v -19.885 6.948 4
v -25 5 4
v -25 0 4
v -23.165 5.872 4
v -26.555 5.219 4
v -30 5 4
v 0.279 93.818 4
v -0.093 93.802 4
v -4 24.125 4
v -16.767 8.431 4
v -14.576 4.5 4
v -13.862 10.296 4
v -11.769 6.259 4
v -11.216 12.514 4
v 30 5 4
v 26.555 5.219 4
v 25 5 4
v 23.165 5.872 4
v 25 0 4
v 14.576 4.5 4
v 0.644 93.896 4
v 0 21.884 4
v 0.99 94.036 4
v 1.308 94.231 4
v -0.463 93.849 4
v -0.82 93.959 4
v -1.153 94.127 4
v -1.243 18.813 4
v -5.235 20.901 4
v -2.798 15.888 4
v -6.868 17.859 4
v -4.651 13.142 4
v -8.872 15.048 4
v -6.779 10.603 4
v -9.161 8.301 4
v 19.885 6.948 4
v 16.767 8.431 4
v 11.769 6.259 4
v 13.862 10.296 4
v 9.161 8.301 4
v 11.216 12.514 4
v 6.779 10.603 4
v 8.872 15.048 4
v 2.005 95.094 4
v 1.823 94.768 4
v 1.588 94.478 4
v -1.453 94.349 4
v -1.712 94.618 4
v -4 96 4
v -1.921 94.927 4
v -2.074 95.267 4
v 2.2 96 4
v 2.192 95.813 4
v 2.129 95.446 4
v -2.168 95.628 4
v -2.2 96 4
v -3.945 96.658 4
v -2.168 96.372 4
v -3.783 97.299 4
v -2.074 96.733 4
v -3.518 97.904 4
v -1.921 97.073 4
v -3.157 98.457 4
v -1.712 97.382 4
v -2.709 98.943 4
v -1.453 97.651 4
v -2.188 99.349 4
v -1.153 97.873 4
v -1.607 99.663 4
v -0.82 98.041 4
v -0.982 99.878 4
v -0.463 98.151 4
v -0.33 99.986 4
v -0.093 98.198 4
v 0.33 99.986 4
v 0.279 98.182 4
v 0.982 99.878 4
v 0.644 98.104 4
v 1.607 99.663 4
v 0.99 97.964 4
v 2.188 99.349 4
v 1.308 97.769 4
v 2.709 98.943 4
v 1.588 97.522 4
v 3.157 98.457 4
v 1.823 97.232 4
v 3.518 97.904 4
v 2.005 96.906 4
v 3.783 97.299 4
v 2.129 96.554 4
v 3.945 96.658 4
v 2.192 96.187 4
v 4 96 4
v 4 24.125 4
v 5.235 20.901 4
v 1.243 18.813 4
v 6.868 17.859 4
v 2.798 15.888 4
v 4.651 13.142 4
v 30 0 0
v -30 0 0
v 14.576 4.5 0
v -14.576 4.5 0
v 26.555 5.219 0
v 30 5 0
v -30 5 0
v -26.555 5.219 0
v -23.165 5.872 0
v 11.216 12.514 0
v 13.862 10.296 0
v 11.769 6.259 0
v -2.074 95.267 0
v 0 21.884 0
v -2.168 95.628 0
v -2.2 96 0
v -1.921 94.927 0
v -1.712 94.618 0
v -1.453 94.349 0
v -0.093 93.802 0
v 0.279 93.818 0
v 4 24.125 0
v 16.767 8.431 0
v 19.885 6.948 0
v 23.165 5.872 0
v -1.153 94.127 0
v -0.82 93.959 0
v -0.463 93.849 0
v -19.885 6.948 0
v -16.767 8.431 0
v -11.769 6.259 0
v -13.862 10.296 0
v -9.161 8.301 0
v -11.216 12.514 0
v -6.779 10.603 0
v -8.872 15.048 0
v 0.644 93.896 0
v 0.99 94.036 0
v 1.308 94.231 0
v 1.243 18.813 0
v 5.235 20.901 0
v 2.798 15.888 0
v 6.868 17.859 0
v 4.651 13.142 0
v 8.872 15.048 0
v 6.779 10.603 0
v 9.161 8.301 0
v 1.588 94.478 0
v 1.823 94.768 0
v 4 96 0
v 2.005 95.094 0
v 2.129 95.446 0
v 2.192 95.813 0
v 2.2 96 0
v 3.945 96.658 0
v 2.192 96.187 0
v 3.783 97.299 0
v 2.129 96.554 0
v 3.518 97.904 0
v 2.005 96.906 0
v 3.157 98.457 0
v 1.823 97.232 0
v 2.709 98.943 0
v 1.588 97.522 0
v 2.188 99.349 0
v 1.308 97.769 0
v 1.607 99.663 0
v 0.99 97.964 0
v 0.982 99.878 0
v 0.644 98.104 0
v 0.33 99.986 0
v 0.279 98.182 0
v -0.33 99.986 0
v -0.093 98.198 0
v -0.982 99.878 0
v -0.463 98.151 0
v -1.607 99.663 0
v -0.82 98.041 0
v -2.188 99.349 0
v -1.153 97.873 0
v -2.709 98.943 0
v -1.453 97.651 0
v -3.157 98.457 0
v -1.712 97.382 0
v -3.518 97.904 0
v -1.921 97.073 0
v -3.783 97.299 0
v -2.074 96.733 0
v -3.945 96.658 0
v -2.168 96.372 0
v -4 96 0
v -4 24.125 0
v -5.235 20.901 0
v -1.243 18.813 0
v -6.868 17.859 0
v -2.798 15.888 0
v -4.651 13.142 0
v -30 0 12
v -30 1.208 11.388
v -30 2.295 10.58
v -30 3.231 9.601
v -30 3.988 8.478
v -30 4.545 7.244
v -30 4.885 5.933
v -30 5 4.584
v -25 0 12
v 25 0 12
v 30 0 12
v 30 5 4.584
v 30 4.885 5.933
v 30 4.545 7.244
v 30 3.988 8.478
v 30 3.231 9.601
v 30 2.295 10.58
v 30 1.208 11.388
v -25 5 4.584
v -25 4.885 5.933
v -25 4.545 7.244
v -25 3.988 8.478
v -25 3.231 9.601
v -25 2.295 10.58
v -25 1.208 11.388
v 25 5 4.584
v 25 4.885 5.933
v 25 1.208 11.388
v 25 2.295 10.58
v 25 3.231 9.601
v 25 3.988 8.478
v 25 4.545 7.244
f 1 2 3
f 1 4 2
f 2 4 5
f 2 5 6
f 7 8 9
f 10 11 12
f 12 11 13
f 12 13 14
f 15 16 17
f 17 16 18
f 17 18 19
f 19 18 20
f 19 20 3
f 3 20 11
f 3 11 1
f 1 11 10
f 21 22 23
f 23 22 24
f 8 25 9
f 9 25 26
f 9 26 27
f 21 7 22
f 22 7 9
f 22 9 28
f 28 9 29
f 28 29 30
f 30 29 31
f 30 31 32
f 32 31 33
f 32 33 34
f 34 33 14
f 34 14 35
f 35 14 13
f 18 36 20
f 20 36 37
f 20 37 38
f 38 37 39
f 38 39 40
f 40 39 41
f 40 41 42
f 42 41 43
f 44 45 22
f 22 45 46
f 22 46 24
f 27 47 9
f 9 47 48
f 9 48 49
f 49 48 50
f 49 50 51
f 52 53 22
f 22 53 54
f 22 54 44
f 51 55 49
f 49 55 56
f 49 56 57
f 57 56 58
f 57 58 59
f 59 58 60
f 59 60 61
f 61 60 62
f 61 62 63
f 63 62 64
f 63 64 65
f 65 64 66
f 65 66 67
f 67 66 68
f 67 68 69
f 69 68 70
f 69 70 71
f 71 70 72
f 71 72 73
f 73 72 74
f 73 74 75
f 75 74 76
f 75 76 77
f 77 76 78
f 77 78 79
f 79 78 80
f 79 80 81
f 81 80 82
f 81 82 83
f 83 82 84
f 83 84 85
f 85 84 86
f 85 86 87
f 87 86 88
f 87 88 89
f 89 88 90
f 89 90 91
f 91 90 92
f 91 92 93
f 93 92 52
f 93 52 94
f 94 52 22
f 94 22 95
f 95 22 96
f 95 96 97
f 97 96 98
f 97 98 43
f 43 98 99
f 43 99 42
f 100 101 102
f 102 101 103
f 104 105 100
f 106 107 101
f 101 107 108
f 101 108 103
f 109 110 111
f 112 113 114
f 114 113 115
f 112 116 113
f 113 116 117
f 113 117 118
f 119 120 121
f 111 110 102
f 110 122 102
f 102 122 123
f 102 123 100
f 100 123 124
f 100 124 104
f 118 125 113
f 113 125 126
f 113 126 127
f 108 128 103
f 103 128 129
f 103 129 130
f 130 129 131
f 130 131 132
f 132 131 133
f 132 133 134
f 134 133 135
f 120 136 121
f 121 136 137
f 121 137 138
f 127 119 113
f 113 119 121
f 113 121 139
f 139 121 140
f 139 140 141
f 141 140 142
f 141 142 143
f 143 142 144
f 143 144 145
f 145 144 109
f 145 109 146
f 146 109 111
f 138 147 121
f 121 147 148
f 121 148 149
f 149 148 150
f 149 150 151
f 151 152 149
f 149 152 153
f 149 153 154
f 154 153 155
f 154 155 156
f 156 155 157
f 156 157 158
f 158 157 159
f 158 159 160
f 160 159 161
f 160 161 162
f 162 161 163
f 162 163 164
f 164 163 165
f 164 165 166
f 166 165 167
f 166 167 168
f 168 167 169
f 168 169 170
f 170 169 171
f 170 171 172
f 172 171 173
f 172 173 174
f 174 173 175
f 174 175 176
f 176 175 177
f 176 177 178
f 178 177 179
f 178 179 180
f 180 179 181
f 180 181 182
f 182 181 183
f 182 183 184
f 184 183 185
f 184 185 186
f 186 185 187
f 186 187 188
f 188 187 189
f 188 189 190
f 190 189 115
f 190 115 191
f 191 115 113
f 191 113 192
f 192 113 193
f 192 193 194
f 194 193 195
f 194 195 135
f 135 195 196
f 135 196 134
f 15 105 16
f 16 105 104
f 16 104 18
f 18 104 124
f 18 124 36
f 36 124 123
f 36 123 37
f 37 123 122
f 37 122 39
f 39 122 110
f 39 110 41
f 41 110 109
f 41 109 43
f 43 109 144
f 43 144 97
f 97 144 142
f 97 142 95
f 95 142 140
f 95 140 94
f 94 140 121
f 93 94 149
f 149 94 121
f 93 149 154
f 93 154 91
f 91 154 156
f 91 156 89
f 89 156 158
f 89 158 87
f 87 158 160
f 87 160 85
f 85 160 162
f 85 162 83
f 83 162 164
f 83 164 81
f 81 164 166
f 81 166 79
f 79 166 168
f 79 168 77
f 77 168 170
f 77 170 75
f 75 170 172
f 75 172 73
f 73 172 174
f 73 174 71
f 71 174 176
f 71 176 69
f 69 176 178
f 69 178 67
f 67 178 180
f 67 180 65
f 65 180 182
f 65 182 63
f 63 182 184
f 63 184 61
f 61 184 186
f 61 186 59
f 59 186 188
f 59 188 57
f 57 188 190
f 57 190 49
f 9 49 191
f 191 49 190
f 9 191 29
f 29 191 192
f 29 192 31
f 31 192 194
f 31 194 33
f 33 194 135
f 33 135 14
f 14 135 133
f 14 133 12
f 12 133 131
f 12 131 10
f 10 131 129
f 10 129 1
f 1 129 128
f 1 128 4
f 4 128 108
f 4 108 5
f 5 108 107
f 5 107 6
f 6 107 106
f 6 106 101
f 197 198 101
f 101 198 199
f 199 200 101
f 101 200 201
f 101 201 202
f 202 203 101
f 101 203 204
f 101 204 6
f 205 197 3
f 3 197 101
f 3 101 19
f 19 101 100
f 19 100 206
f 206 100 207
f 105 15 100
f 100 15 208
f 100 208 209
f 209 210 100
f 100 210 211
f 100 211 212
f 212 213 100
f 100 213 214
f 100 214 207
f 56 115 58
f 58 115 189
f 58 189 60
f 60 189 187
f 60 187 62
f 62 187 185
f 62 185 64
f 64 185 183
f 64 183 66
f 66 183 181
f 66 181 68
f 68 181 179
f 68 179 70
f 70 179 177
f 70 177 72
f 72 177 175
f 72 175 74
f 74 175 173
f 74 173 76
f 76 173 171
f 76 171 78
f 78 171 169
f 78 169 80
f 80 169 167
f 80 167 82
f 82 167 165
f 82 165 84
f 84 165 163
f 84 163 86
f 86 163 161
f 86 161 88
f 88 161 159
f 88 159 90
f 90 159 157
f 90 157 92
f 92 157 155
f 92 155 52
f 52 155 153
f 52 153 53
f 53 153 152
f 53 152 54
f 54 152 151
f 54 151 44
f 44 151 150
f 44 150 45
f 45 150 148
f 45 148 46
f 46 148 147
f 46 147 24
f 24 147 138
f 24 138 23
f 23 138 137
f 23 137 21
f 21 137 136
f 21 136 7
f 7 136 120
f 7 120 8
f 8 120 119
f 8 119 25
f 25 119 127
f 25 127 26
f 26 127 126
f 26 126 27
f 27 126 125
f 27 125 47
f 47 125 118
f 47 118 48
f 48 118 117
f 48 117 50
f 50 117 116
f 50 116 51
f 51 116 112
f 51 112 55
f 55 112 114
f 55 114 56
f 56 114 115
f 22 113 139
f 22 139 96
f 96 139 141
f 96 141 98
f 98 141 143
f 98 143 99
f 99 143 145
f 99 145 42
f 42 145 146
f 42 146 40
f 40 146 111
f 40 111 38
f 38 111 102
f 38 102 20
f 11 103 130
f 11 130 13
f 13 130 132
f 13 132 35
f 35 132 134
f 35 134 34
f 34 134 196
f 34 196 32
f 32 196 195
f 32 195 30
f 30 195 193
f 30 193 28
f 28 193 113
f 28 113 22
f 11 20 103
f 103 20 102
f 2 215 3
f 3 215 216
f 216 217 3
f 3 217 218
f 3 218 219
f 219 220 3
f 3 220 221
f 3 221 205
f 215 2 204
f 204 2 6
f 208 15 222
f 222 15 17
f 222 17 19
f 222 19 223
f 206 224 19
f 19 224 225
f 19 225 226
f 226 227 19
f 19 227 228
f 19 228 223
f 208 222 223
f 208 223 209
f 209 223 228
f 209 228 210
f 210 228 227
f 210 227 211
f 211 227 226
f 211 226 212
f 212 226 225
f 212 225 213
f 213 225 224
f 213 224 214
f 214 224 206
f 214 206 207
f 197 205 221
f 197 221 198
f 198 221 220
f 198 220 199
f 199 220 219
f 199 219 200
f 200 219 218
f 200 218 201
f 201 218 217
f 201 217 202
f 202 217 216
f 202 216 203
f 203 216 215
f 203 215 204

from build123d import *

# Parameters (mm, degrees)
SKETCH1_R           = 2.2
BOSS_EXTRUDE1_DEPTH = 4
SKETCH2_W           = 5
SKETCH2_H           = 5
BOSS_EXTRUDE2_DEPTH = 8
FILLET1_R           = 8


with BuildPart() as part:
    # Sketch1 → Boss-Extrude1 (new body)
    with BuildSketch(Plane.XY):
        with BuildLine():
            Line((-30, 0), (30, 0))
            Line((30, 0), (30, 5))
            ThreePointArc((30, 5), (13.861944355, 10.296039854), (4, 24.124522477))
            Line((4, 24.124522477), (4, 96))
            ThreePointArc((4, 96), (0, 100), (-4, 96))
            Line((-4, 96), (-4, 24.124522477))
            ThreePointArc((-4, 24.124522477), (-13.861944355, 10.296039854), (-30, 5))
            Line((-30, 5), (-30, 0))
        make_face()
        with Locations((0, 96)):
            Circle(SKETCH1_R, mode=Mode.SUBTRACT)
        with BuildLine():
            Line((-14.576406349, 4.5), (14.576406349, 4.5))
            ThreePointArc((14.576406349, 4.5), (5.681813978, 11.844889874), (0, 21.883723005))
            ThreePointArc((0, 21.883723005), (-5.681813978, 11.844889874), (-14.576406349, 4.5))
        make_face(mode=Mode.SUBTRACT)
    extrude(amount=BOSS_EXTRUDE1_DEPTH)

    # Sketch2 → Boss-Extrude2 (add)
    with BuildSketch(Plane.XY.offset(4)):
        with Locations((27.5, 2.5)):
            Rectangle(SKETCH2_W, SKETCH2_H)
        with Locations((-27.5, 2.5)):
            Rectangle(SKETCH2_W, SKETCH2_H)
    extrude(amount=BOSS_EXTRUDE2_DEPTH)

    # Fillet1
    # the kernel refuses this fillet: 8 mm, written as the material it takes off along each edge
    with BuildSketch(Plane(origin=(6.459503782, 5, 12), x_dir=(0, -1, 0), z_dir=(1, 0, 0))) as fillet1_piece_1:
        with BuildLine():
            CenterArc((8, 7.416198487), FILLET1_R, 180, 67.975687163)
            Line((0, 7.416198487), (-0.16, 7.416198487))
            Line((-0.16, 7.416198487), (-0.16, 0))
            Line((-0.16, 0), (0, -0.16))
            ThreePointArc((0, -0.16), (2.5, -0.16), (4.94, -0.14832397))
            Line((4.94, -0.14832397), (5, 0))
        make_face()
    extrude(amount=42.080992435, mode=Mode.SUBTRACT)
    with BuildSketch(Plane(origin=(-6.459503782, 5, 12), x_dir=(0, 0, -1), z_dir=(-1, 0, 0))) as fillet1_piece_2:
        with BuildLine():
            CenterArc((7.416198487, 8), FILLET1_R, 202.024312837, 67.975687163)
            Line((0, 5), (-0.14832397, 4.94))
            ThreePointArc((-0.14832397, 4.94), (-0.16, 2.5), (-0.16, 0))
            Line((-0.16, 0), (0, -0.16))
            Line((0, -0.16), (7.416198487, -0.16))
            Line((7.416198487, -0.16), (7.416198487, 0))
        make_face()
    extrude(amount=42.080992435, mode=Mode.SUBTRACT)


solid = part.part
